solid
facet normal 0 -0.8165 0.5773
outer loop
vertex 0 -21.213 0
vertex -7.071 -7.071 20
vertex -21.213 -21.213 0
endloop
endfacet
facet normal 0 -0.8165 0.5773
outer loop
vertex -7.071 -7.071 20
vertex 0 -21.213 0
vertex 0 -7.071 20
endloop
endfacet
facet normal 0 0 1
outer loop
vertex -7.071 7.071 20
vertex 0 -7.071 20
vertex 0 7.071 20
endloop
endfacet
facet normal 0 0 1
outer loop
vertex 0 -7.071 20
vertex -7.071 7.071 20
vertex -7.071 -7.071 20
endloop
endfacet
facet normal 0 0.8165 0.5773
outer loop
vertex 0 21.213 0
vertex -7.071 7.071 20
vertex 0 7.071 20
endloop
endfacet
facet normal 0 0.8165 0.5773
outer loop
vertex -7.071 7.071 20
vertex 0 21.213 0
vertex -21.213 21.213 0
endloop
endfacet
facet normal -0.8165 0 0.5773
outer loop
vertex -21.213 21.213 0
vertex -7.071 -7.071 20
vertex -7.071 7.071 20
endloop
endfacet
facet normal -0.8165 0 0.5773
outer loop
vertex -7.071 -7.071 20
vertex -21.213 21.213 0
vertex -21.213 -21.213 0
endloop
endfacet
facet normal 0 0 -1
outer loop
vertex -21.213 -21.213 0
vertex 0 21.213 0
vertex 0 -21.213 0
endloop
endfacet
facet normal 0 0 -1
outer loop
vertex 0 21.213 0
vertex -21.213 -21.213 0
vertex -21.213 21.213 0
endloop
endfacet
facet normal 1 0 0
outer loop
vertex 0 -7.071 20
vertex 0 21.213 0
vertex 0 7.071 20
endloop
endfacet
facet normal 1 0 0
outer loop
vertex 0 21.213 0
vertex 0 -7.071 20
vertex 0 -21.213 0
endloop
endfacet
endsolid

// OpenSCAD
difference() {
    rotate([0,0,45])
        cylinder(20,30,10,$fn=4);
    translate([0,-50,-1])
        cube([100,100,100]);
}
